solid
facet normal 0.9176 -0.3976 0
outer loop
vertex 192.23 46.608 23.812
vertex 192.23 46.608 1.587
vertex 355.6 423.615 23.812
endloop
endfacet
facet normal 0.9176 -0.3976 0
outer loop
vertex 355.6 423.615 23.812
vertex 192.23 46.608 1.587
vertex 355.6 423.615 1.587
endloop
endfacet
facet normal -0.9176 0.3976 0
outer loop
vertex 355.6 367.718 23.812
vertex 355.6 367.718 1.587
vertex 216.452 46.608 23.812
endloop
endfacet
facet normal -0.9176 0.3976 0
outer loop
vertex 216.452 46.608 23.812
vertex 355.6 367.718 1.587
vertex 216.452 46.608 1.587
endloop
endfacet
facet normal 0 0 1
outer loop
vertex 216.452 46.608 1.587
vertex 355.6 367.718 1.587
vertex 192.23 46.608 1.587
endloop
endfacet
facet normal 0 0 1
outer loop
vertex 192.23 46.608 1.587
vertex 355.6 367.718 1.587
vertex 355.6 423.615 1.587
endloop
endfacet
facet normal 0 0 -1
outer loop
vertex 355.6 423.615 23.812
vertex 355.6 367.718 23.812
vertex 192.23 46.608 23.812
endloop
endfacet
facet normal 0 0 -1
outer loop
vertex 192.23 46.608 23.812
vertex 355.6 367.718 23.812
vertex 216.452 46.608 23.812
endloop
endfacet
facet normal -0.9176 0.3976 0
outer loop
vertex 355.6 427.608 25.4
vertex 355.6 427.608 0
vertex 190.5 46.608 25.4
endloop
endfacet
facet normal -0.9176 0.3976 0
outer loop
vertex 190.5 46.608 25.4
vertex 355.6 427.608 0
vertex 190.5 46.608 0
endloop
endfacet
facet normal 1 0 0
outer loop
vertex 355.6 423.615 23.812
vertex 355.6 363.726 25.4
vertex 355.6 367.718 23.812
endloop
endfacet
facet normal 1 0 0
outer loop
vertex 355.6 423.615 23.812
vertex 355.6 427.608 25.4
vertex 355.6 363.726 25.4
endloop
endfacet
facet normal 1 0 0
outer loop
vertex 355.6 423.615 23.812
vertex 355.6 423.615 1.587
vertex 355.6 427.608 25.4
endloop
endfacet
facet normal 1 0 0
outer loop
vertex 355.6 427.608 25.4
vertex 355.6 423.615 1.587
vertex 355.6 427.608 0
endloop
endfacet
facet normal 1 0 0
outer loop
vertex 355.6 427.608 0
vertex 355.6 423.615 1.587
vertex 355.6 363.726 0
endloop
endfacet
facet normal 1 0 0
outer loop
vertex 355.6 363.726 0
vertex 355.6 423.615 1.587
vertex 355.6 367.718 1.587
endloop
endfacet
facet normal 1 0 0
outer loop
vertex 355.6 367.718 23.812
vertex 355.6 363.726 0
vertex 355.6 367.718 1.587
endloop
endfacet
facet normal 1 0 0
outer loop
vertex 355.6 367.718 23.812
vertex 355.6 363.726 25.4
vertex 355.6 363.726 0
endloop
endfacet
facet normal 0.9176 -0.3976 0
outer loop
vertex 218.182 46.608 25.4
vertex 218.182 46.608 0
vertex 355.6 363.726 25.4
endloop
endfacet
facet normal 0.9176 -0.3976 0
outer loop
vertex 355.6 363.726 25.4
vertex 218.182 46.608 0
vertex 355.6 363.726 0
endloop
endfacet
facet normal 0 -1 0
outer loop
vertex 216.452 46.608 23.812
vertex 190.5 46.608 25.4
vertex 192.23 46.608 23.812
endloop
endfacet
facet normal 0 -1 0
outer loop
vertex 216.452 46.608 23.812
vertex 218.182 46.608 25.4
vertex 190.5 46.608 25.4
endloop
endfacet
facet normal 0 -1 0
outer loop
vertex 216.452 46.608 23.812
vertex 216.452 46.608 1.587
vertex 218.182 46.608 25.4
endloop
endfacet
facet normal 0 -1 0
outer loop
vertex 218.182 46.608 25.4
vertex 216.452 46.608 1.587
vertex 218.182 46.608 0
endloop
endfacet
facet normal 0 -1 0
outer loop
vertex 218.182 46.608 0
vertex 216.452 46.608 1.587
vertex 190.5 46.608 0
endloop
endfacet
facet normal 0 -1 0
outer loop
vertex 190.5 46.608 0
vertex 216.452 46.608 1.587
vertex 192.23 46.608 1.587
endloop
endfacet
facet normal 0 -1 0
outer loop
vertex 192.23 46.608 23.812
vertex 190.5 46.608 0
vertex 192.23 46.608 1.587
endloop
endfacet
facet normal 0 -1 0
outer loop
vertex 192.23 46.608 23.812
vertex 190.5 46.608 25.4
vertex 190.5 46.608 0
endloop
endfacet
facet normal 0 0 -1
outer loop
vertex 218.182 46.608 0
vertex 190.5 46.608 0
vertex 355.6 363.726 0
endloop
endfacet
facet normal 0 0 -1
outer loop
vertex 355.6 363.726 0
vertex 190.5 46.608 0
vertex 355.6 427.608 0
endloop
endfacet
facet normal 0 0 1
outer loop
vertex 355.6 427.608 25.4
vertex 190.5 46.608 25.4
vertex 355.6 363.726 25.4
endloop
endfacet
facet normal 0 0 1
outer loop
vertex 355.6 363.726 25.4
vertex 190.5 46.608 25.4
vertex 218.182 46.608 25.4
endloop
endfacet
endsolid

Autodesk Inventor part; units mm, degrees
ref_plane "YZ Plane" through (0, 0, 0) normal (1, 0, 0) x (0, 1, 0)
ref_plane "XZ Plane" through (0, 0, 0) normal (0, 1, 0) x (-1, 0, 0)
ref_plane "XY Plane" through (0, 0, 0) normal (0, 0, 1) x (1, 0, 0)
sketch "Sketch1" plane through (0, 0, 0) normal (0, 0, 1) x (1, 0, 0)
  line L0 (190.5, 46.6079) -> (218.1822, 46.6079)
  line L1 (218.1822, 46.6079) -> (355.6, 363.7258)
  line L2 (355.6, 363.7258) -> (355.6, 427.6079)
  line L3 (355.6, 427.6079) -> (190.5, 46.6079)
  line L4 (218.1822, 46.6079) -> (355.6, 46.6079) construction
  line L5 (355.6, 46.6079) -> (355.6, 363.7258) construction
  point P0 (0, 0)
  dimension "d0" = 381
  dimension "d2" = 25.4
  dimension "d3" = 165.1
extrude "Extrusion1" add sketch "Sketch1" along normal blind 25.4
shell "Shell1" thickness 1.5875 removed faces 2 at (355.6, 385.0199, 8.4667) at (199.7274, 46.6079, 8.4667)
properties part number "Frame_MainVerticalAngleSupport" material "Aluminum-6061"
